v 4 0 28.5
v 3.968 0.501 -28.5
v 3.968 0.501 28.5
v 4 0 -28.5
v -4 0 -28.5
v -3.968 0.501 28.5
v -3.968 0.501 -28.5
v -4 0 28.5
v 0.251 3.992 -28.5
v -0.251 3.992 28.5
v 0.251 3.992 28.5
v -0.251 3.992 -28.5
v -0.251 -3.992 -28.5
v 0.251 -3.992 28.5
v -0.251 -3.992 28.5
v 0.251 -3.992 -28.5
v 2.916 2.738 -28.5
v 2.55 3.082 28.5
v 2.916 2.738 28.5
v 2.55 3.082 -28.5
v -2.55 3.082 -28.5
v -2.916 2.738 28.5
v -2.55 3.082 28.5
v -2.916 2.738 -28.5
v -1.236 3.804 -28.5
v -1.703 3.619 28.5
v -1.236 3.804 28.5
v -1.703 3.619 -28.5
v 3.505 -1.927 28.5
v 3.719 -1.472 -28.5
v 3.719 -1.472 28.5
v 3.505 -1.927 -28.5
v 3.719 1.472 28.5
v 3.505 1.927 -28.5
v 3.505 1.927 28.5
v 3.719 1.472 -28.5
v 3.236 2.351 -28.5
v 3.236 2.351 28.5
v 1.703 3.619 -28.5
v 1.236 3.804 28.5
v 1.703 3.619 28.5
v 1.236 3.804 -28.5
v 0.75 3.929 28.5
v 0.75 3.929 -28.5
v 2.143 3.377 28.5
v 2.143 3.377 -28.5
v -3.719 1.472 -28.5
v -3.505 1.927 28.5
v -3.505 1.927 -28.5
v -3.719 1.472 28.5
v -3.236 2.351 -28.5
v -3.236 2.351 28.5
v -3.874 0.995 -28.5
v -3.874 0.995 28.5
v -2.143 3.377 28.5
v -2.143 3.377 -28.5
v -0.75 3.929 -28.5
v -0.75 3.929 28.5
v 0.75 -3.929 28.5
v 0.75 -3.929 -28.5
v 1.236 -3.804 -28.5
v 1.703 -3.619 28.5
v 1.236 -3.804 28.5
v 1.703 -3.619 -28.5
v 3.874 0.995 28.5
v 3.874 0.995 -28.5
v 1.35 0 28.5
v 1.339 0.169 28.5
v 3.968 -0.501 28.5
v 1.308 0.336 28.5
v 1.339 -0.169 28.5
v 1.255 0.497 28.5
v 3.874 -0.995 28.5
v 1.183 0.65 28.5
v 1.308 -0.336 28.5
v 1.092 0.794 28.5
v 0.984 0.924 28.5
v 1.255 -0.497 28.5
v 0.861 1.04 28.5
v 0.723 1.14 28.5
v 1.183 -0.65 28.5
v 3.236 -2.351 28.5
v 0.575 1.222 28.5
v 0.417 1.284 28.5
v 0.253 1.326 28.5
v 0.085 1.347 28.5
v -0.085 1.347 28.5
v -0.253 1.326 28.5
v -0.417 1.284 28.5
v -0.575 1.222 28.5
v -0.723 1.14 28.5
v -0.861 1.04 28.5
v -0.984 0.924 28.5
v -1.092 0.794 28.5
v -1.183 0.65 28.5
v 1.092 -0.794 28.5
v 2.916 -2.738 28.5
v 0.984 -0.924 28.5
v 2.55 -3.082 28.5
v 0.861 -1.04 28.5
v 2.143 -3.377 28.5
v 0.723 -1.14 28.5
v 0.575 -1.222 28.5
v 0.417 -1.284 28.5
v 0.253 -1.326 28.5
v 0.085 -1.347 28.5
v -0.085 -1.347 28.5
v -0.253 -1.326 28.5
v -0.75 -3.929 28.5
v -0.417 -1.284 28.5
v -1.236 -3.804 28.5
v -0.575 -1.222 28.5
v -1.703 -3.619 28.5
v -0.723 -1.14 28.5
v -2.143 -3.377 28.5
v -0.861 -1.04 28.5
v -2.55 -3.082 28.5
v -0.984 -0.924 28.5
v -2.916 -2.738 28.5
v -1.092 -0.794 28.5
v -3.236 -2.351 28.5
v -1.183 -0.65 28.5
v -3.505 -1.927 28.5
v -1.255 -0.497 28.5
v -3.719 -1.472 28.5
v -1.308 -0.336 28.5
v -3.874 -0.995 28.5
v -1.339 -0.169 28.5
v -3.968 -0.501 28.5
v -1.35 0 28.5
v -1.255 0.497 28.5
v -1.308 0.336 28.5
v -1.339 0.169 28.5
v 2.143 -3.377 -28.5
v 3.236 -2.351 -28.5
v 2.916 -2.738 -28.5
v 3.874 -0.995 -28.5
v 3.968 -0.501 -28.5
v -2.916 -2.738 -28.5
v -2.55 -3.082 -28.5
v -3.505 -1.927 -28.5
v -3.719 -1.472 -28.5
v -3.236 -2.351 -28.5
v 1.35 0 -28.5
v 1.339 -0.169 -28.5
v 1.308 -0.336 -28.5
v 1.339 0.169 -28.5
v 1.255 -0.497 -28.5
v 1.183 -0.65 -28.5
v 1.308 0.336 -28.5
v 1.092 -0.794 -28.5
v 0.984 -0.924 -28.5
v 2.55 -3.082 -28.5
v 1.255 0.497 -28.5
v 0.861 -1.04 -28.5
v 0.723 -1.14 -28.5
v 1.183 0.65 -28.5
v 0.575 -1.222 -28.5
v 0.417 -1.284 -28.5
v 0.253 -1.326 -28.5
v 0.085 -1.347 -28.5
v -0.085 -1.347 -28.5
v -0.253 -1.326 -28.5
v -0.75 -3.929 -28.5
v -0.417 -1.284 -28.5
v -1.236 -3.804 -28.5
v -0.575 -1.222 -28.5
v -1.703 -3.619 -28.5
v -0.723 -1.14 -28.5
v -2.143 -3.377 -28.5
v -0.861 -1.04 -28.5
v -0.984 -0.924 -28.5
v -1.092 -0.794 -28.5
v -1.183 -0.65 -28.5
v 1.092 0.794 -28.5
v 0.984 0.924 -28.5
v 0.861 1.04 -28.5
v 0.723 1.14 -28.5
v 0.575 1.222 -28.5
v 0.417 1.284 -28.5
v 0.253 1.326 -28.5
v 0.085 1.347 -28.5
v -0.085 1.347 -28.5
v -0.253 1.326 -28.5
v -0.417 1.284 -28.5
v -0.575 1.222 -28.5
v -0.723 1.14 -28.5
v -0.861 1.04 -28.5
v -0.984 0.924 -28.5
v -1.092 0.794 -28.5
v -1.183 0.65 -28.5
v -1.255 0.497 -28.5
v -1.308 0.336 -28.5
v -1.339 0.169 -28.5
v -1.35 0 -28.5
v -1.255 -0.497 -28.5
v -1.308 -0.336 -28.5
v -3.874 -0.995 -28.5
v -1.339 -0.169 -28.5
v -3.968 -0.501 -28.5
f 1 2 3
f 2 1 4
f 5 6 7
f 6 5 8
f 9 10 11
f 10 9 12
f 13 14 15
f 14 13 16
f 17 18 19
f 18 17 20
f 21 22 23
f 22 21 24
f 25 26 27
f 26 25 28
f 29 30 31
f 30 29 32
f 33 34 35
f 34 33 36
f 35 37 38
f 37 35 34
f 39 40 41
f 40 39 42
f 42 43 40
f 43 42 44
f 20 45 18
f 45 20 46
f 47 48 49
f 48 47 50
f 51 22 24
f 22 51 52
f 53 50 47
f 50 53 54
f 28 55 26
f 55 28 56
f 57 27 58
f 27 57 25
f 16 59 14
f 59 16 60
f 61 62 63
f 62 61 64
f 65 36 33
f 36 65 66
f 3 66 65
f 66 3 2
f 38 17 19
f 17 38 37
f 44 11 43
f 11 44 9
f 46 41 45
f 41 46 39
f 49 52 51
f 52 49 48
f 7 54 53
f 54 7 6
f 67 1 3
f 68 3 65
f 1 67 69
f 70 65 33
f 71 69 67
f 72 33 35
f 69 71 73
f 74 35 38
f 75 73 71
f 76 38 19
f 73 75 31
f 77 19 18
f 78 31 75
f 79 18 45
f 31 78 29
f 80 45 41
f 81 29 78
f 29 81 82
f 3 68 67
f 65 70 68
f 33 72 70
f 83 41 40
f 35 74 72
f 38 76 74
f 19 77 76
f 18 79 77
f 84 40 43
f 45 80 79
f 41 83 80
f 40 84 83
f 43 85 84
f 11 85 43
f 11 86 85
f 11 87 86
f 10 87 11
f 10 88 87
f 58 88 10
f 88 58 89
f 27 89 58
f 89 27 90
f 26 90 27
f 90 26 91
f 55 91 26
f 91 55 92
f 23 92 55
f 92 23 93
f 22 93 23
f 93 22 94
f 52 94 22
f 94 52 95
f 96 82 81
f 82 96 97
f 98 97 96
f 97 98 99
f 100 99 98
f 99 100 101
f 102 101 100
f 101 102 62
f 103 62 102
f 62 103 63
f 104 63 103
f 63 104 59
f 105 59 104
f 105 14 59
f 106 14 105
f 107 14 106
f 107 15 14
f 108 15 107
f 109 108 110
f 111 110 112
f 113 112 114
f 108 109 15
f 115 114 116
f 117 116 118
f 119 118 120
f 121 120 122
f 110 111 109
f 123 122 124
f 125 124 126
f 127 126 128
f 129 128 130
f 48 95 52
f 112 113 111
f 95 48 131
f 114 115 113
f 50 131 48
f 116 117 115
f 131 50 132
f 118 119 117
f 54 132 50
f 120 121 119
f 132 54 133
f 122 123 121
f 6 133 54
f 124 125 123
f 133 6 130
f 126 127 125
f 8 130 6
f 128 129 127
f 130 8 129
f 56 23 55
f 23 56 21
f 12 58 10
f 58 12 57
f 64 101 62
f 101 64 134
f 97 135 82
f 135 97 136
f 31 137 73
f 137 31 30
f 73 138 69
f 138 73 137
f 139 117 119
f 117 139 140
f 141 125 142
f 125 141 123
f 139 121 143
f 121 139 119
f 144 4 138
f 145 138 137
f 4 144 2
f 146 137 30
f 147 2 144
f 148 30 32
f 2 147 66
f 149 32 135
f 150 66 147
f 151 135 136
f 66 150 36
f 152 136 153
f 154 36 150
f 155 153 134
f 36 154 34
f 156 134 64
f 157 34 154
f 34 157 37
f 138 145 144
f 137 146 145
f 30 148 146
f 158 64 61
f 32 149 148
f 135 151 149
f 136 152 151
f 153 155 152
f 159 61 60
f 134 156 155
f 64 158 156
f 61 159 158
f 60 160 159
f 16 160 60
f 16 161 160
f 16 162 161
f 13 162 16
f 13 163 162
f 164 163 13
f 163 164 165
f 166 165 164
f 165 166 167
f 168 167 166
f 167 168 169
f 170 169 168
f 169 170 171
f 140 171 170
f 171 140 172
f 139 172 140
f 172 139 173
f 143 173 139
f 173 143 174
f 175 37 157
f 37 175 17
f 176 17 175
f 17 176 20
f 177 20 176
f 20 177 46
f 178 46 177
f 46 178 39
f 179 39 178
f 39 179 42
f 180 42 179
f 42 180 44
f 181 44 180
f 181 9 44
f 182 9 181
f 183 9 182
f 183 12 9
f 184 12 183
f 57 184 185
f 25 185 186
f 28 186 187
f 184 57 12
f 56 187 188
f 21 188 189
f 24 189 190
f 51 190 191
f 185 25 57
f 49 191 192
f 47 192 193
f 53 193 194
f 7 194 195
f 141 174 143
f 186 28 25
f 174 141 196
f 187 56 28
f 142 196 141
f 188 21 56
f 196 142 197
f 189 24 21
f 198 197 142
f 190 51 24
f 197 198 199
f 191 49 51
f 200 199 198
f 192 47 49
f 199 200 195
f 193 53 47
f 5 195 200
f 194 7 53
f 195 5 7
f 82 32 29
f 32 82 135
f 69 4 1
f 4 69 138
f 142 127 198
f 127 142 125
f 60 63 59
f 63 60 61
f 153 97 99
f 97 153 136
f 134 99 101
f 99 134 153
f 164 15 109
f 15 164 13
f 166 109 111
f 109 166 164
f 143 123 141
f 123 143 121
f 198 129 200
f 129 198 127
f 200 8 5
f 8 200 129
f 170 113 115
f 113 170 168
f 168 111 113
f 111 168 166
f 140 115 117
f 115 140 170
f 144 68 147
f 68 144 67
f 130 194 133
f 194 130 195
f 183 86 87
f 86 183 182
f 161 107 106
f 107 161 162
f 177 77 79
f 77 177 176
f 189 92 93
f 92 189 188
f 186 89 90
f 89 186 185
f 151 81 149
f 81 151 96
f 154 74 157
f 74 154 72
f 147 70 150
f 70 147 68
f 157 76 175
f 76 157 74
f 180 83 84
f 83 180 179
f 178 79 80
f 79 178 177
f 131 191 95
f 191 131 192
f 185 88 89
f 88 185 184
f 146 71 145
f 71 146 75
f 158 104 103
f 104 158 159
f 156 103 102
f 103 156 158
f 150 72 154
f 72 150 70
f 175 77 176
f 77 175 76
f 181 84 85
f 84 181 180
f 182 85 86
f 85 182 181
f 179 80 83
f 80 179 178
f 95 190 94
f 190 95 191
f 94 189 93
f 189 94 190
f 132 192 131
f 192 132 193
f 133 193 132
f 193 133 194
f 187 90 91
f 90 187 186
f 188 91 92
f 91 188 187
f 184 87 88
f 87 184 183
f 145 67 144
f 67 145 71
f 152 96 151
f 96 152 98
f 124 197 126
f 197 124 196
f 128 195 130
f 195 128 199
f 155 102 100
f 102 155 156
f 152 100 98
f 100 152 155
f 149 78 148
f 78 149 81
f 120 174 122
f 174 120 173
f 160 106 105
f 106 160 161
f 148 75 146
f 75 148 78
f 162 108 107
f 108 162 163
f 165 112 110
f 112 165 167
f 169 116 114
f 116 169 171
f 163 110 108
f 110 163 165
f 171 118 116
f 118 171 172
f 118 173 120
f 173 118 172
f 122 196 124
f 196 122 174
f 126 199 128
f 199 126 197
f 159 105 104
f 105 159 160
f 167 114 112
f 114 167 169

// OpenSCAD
$fn = 50;


difference() {
	union() {
		translate(v = [0, 0, -28.5000000000]) {
			cylinder(h = 57, r = 4.0000000000);
		}
	}
	union() {
		translate(v = [0, 0, -100.0000000000]) {
			cylinder(h = 200, r = 1.3500000000);
		}
	}
}
